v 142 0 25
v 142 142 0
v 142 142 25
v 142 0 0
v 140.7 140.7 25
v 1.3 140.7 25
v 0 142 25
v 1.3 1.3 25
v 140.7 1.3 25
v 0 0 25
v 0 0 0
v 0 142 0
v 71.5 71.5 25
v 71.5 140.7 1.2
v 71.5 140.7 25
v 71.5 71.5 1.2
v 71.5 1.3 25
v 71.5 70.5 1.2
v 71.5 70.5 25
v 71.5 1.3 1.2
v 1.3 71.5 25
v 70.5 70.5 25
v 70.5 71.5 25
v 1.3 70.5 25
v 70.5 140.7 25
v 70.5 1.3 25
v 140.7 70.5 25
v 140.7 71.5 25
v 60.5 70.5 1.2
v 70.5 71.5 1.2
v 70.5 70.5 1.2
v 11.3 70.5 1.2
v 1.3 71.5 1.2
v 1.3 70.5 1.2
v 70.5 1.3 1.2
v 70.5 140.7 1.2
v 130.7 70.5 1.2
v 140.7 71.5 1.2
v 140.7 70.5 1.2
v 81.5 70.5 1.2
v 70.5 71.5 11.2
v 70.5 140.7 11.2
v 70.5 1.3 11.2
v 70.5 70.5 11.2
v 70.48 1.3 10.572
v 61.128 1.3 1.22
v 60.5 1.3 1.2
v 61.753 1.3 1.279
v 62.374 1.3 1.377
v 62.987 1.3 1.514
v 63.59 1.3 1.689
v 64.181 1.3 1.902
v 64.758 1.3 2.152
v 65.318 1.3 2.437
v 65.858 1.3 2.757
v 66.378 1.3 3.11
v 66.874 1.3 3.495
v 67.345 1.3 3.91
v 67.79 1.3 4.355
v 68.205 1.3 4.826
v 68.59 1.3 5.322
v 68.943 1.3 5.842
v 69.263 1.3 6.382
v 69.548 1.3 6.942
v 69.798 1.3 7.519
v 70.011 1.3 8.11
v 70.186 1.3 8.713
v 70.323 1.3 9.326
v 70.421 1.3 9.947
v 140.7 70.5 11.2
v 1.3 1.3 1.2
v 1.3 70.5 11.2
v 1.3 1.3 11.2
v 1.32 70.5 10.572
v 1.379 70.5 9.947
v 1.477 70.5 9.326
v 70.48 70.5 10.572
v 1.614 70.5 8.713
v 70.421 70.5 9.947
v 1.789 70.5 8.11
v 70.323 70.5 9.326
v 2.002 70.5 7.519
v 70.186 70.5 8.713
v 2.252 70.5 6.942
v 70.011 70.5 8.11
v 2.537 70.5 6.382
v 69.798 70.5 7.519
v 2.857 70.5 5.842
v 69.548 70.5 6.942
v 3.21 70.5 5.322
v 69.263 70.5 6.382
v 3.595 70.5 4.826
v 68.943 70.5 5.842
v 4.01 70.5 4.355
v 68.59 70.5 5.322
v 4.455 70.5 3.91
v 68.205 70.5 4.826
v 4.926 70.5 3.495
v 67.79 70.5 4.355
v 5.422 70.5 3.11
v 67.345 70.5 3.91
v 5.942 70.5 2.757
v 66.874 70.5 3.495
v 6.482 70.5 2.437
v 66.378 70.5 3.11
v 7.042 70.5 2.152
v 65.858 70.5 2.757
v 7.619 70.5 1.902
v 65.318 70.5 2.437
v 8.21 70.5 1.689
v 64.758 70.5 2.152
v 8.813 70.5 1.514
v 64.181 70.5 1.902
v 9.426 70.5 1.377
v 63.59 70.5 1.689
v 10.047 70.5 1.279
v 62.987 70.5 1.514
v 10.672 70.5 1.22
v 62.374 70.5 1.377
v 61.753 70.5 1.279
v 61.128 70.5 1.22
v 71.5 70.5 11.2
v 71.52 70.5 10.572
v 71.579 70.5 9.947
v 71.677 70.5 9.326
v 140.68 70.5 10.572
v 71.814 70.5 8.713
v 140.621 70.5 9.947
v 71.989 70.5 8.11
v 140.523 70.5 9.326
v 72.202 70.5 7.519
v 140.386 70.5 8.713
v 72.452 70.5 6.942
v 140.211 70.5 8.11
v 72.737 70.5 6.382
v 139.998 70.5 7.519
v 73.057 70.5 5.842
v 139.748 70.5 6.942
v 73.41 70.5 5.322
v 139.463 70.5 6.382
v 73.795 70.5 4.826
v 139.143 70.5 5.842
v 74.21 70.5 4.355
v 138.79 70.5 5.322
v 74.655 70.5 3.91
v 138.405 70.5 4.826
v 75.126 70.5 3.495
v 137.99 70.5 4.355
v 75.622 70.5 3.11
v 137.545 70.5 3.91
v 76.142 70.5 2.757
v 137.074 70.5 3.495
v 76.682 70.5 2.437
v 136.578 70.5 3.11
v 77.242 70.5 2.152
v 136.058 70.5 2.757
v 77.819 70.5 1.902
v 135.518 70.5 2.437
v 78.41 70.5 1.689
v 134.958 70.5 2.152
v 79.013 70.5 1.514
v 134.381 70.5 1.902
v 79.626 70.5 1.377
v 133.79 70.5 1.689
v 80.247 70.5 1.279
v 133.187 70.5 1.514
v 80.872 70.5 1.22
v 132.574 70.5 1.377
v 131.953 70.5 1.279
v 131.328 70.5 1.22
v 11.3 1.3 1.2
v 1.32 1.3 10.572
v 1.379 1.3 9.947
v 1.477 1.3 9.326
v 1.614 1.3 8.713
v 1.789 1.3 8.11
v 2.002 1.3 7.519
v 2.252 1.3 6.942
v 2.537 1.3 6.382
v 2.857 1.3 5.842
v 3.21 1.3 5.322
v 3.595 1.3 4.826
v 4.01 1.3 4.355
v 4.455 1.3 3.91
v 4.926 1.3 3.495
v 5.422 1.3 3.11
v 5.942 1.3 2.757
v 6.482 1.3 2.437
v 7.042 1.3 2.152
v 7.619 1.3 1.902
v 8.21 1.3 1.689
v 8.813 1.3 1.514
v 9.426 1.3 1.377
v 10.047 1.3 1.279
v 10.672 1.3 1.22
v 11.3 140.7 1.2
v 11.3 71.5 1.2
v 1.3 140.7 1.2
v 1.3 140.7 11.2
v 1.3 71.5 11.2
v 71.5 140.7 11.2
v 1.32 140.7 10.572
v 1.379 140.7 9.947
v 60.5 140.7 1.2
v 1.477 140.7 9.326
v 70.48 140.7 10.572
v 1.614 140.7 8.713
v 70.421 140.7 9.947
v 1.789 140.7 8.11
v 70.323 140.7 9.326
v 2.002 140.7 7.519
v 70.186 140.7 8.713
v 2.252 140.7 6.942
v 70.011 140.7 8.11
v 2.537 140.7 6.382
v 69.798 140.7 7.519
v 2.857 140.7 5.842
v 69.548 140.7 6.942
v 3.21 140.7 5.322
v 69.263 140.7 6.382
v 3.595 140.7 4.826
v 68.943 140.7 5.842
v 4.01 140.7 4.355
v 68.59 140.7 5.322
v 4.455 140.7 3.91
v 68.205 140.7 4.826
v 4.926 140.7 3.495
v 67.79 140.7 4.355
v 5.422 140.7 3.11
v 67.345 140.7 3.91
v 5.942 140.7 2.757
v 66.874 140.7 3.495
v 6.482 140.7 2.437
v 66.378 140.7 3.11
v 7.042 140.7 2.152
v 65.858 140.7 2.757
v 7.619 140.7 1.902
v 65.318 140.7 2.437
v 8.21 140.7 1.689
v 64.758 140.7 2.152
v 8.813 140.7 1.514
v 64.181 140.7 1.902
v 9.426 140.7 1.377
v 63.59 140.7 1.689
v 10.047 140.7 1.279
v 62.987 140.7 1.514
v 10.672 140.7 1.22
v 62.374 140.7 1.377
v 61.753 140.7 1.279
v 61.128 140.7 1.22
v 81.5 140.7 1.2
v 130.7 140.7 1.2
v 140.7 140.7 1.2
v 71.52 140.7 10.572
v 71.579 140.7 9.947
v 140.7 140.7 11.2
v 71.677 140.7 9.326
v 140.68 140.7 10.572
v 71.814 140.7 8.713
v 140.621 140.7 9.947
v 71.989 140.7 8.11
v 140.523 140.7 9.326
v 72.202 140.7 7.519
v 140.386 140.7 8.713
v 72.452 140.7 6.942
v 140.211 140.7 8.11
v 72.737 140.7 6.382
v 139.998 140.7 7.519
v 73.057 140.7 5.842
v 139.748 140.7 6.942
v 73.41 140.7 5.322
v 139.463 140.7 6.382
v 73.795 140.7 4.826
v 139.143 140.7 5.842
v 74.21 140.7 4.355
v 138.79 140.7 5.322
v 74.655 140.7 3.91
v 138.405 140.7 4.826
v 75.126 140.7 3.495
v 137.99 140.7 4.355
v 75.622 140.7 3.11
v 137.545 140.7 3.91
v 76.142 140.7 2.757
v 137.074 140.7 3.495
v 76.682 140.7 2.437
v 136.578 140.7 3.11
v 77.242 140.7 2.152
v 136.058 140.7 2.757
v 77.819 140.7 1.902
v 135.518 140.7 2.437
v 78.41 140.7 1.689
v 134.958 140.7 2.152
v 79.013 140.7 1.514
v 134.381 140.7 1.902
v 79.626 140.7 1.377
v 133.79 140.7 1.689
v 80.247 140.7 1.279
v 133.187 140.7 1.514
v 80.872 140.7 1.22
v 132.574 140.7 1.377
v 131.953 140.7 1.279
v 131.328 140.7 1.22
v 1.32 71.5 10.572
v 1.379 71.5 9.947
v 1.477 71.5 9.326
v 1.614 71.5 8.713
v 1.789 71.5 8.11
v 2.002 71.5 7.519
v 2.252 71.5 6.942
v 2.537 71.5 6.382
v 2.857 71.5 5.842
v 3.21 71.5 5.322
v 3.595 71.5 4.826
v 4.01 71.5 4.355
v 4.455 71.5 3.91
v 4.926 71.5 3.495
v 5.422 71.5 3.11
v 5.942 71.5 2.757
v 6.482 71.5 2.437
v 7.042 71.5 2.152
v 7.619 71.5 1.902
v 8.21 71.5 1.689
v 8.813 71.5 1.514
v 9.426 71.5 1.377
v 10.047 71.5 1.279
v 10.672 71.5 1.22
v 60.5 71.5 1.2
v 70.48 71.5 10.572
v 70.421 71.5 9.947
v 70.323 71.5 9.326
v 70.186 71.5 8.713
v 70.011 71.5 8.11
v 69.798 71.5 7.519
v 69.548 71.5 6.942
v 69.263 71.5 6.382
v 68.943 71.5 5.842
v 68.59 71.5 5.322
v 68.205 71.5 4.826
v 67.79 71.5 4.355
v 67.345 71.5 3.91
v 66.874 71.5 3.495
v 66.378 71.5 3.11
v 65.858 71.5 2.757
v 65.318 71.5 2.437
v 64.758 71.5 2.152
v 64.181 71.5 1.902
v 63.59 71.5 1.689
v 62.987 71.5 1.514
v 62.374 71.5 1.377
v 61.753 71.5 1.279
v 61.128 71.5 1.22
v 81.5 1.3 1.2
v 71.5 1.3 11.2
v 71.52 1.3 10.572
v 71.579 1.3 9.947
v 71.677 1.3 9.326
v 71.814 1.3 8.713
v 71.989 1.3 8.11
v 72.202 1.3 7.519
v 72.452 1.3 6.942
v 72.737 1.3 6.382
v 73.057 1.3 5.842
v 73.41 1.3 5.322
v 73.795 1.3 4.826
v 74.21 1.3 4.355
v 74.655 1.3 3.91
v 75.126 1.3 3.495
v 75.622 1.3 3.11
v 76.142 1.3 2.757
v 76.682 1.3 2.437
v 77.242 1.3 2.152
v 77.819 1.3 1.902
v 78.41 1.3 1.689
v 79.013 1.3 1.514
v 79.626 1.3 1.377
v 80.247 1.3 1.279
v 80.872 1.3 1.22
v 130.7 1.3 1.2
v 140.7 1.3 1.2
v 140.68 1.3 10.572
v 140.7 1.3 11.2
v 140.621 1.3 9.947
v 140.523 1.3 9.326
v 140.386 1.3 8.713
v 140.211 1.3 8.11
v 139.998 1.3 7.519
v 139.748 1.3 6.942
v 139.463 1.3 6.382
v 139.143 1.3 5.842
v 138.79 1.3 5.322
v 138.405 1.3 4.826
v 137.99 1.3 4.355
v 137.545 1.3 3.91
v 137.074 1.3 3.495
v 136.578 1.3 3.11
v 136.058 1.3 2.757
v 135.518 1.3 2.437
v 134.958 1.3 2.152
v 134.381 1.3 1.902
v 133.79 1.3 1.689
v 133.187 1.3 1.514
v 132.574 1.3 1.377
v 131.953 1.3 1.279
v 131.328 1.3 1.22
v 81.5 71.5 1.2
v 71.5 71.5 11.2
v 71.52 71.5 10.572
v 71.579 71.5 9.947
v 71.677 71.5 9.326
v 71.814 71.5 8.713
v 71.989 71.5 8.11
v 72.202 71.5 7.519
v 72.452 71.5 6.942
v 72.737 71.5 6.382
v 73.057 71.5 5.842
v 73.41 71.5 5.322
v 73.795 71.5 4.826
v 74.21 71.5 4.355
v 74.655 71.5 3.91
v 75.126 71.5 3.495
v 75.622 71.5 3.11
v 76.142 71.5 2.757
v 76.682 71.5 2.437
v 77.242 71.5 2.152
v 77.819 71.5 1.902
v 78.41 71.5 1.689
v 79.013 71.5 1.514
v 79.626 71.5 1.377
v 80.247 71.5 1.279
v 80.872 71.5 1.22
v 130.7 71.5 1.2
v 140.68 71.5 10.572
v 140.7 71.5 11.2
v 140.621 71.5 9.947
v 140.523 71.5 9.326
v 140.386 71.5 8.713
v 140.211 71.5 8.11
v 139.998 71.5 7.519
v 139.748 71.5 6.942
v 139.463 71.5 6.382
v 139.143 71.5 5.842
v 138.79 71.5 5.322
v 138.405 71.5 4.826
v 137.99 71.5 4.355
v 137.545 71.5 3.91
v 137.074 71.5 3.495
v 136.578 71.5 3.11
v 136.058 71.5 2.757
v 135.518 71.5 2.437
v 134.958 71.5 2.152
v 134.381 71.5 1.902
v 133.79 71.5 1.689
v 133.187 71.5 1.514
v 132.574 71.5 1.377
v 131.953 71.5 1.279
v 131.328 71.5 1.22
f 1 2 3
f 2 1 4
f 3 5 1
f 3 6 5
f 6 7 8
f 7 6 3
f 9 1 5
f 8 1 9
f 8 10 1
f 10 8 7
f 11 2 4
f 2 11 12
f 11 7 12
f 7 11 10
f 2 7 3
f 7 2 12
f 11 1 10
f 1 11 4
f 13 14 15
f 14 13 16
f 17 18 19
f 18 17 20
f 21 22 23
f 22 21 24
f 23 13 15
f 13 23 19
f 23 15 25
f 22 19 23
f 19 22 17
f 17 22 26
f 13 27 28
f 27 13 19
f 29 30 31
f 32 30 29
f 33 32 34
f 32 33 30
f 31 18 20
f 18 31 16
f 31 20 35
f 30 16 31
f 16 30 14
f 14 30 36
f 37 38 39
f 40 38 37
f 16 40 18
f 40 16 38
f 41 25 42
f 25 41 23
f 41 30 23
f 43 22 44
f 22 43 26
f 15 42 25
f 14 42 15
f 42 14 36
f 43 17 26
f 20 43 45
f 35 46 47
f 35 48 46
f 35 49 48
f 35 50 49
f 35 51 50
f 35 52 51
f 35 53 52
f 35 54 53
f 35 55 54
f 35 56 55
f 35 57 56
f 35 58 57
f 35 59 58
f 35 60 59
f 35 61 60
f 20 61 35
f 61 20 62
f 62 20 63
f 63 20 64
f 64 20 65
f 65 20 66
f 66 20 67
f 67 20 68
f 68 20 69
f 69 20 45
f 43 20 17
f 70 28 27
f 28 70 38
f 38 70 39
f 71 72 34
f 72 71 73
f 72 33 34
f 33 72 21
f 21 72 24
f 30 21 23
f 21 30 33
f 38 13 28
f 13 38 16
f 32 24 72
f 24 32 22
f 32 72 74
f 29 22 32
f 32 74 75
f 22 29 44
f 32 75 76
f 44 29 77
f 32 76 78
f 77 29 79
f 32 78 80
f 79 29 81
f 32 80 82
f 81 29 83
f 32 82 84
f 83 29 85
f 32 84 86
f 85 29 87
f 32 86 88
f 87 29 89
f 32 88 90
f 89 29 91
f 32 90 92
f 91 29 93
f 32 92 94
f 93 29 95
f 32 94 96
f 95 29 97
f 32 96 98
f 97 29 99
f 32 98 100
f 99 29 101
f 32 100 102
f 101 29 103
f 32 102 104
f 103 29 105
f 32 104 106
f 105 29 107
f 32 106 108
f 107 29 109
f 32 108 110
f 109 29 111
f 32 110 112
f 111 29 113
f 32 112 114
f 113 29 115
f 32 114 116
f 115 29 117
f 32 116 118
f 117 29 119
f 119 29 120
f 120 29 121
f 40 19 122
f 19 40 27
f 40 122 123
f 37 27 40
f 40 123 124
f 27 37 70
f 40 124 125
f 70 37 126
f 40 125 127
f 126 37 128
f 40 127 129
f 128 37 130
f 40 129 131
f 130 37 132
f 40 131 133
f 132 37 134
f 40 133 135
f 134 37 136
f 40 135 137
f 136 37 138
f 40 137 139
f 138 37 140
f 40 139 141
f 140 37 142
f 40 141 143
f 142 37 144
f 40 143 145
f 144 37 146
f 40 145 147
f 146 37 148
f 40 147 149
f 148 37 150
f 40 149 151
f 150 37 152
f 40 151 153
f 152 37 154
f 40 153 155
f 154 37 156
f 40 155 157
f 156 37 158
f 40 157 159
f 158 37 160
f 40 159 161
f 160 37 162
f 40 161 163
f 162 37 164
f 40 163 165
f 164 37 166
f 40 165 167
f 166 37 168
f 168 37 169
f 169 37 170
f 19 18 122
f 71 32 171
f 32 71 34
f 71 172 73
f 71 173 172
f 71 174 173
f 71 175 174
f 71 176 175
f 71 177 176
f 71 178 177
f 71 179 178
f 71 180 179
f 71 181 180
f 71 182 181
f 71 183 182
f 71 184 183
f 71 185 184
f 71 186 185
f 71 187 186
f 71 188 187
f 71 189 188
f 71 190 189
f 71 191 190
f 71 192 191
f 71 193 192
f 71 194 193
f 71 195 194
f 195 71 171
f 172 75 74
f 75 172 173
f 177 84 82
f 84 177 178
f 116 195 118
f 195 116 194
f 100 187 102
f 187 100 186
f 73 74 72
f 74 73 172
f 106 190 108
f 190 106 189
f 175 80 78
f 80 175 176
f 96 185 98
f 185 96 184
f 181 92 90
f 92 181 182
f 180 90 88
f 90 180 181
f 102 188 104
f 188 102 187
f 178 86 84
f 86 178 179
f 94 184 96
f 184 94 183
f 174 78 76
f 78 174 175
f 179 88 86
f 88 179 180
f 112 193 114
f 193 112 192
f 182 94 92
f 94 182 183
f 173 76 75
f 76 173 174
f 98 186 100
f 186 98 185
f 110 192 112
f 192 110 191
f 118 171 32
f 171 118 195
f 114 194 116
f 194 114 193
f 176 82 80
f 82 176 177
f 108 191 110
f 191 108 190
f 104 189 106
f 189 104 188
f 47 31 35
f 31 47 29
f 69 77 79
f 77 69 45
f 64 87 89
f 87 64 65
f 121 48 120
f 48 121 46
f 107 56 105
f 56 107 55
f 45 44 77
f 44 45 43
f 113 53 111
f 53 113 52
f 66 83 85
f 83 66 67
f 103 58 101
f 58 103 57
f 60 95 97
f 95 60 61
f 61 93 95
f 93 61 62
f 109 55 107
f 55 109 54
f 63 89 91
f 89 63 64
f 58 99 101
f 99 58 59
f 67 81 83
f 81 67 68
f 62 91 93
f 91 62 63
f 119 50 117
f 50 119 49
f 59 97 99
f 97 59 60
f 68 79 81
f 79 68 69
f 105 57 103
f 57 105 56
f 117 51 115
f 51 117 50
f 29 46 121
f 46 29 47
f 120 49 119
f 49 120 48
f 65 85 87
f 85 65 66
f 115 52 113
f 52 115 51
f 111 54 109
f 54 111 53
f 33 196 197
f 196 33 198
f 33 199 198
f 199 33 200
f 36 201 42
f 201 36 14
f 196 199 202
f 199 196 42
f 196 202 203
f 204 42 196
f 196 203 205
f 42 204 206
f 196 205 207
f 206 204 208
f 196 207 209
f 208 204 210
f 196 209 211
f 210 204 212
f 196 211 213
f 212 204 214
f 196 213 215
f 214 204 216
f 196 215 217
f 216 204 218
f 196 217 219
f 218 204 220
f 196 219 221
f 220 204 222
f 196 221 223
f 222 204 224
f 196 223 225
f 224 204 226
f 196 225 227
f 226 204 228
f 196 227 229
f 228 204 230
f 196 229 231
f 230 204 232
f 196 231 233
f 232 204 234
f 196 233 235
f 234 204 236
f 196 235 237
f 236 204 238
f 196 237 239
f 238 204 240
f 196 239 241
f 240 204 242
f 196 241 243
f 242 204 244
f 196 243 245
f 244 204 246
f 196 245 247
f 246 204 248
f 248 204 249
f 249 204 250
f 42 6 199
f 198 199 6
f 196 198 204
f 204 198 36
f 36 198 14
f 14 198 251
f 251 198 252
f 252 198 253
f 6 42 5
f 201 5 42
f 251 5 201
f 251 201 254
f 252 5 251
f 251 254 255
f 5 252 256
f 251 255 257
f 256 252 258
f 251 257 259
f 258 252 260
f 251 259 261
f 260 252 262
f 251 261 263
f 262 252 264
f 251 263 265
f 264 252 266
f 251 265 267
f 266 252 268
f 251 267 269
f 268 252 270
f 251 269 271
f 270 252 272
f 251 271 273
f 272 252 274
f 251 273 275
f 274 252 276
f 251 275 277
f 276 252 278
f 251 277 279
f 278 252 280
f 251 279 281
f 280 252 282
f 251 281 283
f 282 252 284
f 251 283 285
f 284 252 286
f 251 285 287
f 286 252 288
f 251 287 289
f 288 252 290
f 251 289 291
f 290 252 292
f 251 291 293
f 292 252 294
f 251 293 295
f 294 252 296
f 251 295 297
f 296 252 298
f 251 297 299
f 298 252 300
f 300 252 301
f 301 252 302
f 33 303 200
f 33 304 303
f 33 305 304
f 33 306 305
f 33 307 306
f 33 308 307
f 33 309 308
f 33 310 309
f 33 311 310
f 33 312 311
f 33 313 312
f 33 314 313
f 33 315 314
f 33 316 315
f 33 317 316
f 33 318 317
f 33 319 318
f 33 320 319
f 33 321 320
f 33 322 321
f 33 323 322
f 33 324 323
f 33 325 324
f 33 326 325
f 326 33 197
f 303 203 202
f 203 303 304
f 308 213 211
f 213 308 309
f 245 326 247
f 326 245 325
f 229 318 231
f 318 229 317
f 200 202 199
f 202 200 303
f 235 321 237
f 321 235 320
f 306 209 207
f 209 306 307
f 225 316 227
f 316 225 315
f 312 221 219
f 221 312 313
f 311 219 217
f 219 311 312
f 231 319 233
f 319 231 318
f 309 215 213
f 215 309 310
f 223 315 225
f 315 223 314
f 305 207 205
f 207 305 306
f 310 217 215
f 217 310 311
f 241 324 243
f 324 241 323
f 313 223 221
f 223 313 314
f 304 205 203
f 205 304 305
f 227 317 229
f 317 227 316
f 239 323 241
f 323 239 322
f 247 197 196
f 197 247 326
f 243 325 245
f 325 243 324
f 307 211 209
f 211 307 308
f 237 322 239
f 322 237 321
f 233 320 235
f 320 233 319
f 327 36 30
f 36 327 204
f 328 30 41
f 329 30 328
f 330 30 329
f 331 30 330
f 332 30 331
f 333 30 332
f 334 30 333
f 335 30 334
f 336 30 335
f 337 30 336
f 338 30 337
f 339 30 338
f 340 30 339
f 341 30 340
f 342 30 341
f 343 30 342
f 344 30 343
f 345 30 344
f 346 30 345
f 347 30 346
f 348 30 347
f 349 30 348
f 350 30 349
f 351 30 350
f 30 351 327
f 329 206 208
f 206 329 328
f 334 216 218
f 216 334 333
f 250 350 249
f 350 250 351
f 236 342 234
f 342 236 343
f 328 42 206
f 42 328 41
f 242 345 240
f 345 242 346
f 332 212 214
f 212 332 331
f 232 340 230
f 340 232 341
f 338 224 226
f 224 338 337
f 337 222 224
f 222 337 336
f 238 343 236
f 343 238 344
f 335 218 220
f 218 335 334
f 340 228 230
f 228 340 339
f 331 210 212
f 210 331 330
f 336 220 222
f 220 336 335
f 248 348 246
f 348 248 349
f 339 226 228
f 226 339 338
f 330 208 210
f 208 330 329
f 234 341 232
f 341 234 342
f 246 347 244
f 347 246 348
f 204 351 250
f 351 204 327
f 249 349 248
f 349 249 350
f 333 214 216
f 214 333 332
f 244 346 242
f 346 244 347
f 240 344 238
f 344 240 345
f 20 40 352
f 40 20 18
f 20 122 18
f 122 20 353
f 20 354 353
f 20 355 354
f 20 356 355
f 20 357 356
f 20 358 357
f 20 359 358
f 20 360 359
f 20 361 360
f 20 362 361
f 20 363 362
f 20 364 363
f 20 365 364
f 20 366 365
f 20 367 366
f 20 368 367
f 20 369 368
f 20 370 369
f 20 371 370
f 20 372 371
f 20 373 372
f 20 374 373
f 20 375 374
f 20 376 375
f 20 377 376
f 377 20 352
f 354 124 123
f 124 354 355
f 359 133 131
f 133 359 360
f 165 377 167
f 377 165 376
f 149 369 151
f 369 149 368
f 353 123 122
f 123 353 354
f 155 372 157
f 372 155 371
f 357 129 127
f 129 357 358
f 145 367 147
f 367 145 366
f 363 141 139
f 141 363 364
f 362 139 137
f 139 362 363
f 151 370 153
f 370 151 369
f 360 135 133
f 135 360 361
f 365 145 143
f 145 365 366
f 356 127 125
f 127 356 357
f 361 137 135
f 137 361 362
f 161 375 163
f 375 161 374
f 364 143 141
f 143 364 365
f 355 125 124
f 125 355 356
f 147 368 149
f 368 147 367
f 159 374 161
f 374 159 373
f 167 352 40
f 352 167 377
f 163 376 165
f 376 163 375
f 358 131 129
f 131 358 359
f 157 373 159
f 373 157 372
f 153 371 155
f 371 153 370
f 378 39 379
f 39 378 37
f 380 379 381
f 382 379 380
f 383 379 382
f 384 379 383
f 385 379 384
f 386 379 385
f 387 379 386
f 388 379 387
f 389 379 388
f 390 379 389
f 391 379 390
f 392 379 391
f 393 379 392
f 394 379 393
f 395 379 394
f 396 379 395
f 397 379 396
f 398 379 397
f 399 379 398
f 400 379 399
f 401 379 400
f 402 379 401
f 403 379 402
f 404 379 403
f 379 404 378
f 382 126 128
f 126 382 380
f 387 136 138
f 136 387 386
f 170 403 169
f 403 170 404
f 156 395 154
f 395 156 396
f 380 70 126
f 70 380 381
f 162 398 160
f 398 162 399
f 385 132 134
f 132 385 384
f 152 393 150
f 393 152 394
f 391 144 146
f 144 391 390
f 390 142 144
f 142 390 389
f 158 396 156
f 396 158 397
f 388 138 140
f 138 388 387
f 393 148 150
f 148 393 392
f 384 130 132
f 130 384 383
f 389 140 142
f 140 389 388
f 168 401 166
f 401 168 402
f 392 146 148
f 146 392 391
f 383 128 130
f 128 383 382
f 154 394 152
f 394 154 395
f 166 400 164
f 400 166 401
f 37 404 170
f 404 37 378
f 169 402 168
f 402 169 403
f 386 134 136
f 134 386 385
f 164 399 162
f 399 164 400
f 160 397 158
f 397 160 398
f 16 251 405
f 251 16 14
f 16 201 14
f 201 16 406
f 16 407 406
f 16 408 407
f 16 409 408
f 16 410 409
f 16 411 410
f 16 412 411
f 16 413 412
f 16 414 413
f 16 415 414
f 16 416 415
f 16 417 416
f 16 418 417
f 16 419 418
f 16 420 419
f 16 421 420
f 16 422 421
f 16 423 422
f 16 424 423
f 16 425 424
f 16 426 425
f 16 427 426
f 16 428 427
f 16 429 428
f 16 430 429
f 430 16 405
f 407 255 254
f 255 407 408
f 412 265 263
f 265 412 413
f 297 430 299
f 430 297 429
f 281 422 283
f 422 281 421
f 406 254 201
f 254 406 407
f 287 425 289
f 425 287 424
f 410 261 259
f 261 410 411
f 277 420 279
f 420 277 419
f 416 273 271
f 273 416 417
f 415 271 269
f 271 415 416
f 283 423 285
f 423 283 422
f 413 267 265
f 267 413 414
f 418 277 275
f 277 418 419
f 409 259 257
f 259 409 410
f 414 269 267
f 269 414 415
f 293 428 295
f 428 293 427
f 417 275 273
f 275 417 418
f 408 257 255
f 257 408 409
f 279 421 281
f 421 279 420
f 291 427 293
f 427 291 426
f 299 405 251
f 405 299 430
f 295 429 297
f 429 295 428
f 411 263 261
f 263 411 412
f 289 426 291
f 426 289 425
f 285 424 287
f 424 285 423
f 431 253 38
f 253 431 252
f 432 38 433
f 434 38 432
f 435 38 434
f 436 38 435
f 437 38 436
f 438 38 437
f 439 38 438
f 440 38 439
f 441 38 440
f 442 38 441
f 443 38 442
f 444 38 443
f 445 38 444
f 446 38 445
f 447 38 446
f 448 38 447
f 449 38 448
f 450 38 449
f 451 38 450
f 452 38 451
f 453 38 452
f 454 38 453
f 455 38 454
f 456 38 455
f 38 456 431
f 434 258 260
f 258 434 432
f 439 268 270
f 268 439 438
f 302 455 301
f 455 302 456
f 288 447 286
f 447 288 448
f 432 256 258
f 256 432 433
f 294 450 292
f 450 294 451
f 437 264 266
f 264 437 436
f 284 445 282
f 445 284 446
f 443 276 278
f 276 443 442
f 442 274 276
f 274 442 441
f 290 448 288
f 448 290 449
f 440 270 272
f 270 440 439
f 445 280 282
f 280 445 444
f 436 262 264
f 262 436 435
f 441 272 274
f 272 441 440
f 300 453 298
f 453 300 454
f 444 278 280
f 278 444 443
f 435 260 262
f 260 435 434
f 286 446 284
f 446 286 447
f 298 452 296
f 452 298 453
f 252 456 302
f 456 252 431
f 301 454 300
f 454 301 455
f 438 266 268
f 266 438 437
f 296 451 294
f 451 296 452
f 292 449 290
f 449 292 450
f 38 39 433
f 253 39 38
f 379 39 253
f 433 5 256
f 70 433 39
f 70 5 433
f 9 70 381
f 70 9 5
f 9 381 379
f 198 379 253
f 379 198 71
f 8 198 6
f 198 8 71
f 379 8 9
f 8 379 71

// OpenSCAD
include <boardgame_insert_toolkit_lib.2.scad>;

// determines whether lids are output.
g_b_print_lid = true;

// determines whether boxes are output.
g_b_print_box = true; 

// Focus on one box
g_isolated_print_box = ""; 

// Used to visualize how all of the boxes fit together. 
g_b_visualization = false;          
        
// this is the outer wall thickness. 
//Default = 1.5mm
g_wall_thickness = 1.2;

// The tolerance value is extra space put between planes of the lid and box that fit together.
// Increase the tolerance to loosen the fit and decrease it to tighten it.
//
// Note that the tolerance is applied exclusively to the lid.
// So if the lid is too tight or too loose, change this value ( up for looser fit, down for tighter fit ) and 
// you only need to reprint the lid.
// 
// The exception is the stackable box, where the bottom of the box is the lid of the box below,
// in which case the tolerance also affects that box bottom.
//
g_tolerance = 0.15;

// This adjusts the position of the lid detents downward. 
// The larger the value, the bigger the gap between the lid and the box.
g_tolerance_detents_pos = 0.1;

aw_box_x = 142.0; // 284 / 2
aw_box_y = 142.0; //
aw_box_z = 25.0;

aw_compartment_size_x = (aw_box_x - 3 * g_wall_thickness) / 2;
aw_compartment_size_y = (aw_box_y - 3 * g_wall_thickness) / 2;

data =
  [
    [
      "3x3 box",
      [
        [ BOX_SIZE_XYZ, [aw_box_x, aw_box_y, aw_box_z] ],
        [ BOX_NO_LID_B, t],
        [
          BOX_COMPONENT,
          [
            [ CMP_SHAPE, FILLET ],
            [ CMP_NUM_COMPARTMENTS_XY, [2, 2] ],
            [
              CMP_COMPARTMENT_SIZE_XYZ,
              [
                aw_compartment_size_x,
                aw_compartment_size_y,
                aw_box_z - 1 * g_wall_thickness
              ]
            ],
            [ POSITION_XY, [ CENTER, CENTER ] ],
          ]
        ],
      ]
    ]
  ];


MakeAll();
